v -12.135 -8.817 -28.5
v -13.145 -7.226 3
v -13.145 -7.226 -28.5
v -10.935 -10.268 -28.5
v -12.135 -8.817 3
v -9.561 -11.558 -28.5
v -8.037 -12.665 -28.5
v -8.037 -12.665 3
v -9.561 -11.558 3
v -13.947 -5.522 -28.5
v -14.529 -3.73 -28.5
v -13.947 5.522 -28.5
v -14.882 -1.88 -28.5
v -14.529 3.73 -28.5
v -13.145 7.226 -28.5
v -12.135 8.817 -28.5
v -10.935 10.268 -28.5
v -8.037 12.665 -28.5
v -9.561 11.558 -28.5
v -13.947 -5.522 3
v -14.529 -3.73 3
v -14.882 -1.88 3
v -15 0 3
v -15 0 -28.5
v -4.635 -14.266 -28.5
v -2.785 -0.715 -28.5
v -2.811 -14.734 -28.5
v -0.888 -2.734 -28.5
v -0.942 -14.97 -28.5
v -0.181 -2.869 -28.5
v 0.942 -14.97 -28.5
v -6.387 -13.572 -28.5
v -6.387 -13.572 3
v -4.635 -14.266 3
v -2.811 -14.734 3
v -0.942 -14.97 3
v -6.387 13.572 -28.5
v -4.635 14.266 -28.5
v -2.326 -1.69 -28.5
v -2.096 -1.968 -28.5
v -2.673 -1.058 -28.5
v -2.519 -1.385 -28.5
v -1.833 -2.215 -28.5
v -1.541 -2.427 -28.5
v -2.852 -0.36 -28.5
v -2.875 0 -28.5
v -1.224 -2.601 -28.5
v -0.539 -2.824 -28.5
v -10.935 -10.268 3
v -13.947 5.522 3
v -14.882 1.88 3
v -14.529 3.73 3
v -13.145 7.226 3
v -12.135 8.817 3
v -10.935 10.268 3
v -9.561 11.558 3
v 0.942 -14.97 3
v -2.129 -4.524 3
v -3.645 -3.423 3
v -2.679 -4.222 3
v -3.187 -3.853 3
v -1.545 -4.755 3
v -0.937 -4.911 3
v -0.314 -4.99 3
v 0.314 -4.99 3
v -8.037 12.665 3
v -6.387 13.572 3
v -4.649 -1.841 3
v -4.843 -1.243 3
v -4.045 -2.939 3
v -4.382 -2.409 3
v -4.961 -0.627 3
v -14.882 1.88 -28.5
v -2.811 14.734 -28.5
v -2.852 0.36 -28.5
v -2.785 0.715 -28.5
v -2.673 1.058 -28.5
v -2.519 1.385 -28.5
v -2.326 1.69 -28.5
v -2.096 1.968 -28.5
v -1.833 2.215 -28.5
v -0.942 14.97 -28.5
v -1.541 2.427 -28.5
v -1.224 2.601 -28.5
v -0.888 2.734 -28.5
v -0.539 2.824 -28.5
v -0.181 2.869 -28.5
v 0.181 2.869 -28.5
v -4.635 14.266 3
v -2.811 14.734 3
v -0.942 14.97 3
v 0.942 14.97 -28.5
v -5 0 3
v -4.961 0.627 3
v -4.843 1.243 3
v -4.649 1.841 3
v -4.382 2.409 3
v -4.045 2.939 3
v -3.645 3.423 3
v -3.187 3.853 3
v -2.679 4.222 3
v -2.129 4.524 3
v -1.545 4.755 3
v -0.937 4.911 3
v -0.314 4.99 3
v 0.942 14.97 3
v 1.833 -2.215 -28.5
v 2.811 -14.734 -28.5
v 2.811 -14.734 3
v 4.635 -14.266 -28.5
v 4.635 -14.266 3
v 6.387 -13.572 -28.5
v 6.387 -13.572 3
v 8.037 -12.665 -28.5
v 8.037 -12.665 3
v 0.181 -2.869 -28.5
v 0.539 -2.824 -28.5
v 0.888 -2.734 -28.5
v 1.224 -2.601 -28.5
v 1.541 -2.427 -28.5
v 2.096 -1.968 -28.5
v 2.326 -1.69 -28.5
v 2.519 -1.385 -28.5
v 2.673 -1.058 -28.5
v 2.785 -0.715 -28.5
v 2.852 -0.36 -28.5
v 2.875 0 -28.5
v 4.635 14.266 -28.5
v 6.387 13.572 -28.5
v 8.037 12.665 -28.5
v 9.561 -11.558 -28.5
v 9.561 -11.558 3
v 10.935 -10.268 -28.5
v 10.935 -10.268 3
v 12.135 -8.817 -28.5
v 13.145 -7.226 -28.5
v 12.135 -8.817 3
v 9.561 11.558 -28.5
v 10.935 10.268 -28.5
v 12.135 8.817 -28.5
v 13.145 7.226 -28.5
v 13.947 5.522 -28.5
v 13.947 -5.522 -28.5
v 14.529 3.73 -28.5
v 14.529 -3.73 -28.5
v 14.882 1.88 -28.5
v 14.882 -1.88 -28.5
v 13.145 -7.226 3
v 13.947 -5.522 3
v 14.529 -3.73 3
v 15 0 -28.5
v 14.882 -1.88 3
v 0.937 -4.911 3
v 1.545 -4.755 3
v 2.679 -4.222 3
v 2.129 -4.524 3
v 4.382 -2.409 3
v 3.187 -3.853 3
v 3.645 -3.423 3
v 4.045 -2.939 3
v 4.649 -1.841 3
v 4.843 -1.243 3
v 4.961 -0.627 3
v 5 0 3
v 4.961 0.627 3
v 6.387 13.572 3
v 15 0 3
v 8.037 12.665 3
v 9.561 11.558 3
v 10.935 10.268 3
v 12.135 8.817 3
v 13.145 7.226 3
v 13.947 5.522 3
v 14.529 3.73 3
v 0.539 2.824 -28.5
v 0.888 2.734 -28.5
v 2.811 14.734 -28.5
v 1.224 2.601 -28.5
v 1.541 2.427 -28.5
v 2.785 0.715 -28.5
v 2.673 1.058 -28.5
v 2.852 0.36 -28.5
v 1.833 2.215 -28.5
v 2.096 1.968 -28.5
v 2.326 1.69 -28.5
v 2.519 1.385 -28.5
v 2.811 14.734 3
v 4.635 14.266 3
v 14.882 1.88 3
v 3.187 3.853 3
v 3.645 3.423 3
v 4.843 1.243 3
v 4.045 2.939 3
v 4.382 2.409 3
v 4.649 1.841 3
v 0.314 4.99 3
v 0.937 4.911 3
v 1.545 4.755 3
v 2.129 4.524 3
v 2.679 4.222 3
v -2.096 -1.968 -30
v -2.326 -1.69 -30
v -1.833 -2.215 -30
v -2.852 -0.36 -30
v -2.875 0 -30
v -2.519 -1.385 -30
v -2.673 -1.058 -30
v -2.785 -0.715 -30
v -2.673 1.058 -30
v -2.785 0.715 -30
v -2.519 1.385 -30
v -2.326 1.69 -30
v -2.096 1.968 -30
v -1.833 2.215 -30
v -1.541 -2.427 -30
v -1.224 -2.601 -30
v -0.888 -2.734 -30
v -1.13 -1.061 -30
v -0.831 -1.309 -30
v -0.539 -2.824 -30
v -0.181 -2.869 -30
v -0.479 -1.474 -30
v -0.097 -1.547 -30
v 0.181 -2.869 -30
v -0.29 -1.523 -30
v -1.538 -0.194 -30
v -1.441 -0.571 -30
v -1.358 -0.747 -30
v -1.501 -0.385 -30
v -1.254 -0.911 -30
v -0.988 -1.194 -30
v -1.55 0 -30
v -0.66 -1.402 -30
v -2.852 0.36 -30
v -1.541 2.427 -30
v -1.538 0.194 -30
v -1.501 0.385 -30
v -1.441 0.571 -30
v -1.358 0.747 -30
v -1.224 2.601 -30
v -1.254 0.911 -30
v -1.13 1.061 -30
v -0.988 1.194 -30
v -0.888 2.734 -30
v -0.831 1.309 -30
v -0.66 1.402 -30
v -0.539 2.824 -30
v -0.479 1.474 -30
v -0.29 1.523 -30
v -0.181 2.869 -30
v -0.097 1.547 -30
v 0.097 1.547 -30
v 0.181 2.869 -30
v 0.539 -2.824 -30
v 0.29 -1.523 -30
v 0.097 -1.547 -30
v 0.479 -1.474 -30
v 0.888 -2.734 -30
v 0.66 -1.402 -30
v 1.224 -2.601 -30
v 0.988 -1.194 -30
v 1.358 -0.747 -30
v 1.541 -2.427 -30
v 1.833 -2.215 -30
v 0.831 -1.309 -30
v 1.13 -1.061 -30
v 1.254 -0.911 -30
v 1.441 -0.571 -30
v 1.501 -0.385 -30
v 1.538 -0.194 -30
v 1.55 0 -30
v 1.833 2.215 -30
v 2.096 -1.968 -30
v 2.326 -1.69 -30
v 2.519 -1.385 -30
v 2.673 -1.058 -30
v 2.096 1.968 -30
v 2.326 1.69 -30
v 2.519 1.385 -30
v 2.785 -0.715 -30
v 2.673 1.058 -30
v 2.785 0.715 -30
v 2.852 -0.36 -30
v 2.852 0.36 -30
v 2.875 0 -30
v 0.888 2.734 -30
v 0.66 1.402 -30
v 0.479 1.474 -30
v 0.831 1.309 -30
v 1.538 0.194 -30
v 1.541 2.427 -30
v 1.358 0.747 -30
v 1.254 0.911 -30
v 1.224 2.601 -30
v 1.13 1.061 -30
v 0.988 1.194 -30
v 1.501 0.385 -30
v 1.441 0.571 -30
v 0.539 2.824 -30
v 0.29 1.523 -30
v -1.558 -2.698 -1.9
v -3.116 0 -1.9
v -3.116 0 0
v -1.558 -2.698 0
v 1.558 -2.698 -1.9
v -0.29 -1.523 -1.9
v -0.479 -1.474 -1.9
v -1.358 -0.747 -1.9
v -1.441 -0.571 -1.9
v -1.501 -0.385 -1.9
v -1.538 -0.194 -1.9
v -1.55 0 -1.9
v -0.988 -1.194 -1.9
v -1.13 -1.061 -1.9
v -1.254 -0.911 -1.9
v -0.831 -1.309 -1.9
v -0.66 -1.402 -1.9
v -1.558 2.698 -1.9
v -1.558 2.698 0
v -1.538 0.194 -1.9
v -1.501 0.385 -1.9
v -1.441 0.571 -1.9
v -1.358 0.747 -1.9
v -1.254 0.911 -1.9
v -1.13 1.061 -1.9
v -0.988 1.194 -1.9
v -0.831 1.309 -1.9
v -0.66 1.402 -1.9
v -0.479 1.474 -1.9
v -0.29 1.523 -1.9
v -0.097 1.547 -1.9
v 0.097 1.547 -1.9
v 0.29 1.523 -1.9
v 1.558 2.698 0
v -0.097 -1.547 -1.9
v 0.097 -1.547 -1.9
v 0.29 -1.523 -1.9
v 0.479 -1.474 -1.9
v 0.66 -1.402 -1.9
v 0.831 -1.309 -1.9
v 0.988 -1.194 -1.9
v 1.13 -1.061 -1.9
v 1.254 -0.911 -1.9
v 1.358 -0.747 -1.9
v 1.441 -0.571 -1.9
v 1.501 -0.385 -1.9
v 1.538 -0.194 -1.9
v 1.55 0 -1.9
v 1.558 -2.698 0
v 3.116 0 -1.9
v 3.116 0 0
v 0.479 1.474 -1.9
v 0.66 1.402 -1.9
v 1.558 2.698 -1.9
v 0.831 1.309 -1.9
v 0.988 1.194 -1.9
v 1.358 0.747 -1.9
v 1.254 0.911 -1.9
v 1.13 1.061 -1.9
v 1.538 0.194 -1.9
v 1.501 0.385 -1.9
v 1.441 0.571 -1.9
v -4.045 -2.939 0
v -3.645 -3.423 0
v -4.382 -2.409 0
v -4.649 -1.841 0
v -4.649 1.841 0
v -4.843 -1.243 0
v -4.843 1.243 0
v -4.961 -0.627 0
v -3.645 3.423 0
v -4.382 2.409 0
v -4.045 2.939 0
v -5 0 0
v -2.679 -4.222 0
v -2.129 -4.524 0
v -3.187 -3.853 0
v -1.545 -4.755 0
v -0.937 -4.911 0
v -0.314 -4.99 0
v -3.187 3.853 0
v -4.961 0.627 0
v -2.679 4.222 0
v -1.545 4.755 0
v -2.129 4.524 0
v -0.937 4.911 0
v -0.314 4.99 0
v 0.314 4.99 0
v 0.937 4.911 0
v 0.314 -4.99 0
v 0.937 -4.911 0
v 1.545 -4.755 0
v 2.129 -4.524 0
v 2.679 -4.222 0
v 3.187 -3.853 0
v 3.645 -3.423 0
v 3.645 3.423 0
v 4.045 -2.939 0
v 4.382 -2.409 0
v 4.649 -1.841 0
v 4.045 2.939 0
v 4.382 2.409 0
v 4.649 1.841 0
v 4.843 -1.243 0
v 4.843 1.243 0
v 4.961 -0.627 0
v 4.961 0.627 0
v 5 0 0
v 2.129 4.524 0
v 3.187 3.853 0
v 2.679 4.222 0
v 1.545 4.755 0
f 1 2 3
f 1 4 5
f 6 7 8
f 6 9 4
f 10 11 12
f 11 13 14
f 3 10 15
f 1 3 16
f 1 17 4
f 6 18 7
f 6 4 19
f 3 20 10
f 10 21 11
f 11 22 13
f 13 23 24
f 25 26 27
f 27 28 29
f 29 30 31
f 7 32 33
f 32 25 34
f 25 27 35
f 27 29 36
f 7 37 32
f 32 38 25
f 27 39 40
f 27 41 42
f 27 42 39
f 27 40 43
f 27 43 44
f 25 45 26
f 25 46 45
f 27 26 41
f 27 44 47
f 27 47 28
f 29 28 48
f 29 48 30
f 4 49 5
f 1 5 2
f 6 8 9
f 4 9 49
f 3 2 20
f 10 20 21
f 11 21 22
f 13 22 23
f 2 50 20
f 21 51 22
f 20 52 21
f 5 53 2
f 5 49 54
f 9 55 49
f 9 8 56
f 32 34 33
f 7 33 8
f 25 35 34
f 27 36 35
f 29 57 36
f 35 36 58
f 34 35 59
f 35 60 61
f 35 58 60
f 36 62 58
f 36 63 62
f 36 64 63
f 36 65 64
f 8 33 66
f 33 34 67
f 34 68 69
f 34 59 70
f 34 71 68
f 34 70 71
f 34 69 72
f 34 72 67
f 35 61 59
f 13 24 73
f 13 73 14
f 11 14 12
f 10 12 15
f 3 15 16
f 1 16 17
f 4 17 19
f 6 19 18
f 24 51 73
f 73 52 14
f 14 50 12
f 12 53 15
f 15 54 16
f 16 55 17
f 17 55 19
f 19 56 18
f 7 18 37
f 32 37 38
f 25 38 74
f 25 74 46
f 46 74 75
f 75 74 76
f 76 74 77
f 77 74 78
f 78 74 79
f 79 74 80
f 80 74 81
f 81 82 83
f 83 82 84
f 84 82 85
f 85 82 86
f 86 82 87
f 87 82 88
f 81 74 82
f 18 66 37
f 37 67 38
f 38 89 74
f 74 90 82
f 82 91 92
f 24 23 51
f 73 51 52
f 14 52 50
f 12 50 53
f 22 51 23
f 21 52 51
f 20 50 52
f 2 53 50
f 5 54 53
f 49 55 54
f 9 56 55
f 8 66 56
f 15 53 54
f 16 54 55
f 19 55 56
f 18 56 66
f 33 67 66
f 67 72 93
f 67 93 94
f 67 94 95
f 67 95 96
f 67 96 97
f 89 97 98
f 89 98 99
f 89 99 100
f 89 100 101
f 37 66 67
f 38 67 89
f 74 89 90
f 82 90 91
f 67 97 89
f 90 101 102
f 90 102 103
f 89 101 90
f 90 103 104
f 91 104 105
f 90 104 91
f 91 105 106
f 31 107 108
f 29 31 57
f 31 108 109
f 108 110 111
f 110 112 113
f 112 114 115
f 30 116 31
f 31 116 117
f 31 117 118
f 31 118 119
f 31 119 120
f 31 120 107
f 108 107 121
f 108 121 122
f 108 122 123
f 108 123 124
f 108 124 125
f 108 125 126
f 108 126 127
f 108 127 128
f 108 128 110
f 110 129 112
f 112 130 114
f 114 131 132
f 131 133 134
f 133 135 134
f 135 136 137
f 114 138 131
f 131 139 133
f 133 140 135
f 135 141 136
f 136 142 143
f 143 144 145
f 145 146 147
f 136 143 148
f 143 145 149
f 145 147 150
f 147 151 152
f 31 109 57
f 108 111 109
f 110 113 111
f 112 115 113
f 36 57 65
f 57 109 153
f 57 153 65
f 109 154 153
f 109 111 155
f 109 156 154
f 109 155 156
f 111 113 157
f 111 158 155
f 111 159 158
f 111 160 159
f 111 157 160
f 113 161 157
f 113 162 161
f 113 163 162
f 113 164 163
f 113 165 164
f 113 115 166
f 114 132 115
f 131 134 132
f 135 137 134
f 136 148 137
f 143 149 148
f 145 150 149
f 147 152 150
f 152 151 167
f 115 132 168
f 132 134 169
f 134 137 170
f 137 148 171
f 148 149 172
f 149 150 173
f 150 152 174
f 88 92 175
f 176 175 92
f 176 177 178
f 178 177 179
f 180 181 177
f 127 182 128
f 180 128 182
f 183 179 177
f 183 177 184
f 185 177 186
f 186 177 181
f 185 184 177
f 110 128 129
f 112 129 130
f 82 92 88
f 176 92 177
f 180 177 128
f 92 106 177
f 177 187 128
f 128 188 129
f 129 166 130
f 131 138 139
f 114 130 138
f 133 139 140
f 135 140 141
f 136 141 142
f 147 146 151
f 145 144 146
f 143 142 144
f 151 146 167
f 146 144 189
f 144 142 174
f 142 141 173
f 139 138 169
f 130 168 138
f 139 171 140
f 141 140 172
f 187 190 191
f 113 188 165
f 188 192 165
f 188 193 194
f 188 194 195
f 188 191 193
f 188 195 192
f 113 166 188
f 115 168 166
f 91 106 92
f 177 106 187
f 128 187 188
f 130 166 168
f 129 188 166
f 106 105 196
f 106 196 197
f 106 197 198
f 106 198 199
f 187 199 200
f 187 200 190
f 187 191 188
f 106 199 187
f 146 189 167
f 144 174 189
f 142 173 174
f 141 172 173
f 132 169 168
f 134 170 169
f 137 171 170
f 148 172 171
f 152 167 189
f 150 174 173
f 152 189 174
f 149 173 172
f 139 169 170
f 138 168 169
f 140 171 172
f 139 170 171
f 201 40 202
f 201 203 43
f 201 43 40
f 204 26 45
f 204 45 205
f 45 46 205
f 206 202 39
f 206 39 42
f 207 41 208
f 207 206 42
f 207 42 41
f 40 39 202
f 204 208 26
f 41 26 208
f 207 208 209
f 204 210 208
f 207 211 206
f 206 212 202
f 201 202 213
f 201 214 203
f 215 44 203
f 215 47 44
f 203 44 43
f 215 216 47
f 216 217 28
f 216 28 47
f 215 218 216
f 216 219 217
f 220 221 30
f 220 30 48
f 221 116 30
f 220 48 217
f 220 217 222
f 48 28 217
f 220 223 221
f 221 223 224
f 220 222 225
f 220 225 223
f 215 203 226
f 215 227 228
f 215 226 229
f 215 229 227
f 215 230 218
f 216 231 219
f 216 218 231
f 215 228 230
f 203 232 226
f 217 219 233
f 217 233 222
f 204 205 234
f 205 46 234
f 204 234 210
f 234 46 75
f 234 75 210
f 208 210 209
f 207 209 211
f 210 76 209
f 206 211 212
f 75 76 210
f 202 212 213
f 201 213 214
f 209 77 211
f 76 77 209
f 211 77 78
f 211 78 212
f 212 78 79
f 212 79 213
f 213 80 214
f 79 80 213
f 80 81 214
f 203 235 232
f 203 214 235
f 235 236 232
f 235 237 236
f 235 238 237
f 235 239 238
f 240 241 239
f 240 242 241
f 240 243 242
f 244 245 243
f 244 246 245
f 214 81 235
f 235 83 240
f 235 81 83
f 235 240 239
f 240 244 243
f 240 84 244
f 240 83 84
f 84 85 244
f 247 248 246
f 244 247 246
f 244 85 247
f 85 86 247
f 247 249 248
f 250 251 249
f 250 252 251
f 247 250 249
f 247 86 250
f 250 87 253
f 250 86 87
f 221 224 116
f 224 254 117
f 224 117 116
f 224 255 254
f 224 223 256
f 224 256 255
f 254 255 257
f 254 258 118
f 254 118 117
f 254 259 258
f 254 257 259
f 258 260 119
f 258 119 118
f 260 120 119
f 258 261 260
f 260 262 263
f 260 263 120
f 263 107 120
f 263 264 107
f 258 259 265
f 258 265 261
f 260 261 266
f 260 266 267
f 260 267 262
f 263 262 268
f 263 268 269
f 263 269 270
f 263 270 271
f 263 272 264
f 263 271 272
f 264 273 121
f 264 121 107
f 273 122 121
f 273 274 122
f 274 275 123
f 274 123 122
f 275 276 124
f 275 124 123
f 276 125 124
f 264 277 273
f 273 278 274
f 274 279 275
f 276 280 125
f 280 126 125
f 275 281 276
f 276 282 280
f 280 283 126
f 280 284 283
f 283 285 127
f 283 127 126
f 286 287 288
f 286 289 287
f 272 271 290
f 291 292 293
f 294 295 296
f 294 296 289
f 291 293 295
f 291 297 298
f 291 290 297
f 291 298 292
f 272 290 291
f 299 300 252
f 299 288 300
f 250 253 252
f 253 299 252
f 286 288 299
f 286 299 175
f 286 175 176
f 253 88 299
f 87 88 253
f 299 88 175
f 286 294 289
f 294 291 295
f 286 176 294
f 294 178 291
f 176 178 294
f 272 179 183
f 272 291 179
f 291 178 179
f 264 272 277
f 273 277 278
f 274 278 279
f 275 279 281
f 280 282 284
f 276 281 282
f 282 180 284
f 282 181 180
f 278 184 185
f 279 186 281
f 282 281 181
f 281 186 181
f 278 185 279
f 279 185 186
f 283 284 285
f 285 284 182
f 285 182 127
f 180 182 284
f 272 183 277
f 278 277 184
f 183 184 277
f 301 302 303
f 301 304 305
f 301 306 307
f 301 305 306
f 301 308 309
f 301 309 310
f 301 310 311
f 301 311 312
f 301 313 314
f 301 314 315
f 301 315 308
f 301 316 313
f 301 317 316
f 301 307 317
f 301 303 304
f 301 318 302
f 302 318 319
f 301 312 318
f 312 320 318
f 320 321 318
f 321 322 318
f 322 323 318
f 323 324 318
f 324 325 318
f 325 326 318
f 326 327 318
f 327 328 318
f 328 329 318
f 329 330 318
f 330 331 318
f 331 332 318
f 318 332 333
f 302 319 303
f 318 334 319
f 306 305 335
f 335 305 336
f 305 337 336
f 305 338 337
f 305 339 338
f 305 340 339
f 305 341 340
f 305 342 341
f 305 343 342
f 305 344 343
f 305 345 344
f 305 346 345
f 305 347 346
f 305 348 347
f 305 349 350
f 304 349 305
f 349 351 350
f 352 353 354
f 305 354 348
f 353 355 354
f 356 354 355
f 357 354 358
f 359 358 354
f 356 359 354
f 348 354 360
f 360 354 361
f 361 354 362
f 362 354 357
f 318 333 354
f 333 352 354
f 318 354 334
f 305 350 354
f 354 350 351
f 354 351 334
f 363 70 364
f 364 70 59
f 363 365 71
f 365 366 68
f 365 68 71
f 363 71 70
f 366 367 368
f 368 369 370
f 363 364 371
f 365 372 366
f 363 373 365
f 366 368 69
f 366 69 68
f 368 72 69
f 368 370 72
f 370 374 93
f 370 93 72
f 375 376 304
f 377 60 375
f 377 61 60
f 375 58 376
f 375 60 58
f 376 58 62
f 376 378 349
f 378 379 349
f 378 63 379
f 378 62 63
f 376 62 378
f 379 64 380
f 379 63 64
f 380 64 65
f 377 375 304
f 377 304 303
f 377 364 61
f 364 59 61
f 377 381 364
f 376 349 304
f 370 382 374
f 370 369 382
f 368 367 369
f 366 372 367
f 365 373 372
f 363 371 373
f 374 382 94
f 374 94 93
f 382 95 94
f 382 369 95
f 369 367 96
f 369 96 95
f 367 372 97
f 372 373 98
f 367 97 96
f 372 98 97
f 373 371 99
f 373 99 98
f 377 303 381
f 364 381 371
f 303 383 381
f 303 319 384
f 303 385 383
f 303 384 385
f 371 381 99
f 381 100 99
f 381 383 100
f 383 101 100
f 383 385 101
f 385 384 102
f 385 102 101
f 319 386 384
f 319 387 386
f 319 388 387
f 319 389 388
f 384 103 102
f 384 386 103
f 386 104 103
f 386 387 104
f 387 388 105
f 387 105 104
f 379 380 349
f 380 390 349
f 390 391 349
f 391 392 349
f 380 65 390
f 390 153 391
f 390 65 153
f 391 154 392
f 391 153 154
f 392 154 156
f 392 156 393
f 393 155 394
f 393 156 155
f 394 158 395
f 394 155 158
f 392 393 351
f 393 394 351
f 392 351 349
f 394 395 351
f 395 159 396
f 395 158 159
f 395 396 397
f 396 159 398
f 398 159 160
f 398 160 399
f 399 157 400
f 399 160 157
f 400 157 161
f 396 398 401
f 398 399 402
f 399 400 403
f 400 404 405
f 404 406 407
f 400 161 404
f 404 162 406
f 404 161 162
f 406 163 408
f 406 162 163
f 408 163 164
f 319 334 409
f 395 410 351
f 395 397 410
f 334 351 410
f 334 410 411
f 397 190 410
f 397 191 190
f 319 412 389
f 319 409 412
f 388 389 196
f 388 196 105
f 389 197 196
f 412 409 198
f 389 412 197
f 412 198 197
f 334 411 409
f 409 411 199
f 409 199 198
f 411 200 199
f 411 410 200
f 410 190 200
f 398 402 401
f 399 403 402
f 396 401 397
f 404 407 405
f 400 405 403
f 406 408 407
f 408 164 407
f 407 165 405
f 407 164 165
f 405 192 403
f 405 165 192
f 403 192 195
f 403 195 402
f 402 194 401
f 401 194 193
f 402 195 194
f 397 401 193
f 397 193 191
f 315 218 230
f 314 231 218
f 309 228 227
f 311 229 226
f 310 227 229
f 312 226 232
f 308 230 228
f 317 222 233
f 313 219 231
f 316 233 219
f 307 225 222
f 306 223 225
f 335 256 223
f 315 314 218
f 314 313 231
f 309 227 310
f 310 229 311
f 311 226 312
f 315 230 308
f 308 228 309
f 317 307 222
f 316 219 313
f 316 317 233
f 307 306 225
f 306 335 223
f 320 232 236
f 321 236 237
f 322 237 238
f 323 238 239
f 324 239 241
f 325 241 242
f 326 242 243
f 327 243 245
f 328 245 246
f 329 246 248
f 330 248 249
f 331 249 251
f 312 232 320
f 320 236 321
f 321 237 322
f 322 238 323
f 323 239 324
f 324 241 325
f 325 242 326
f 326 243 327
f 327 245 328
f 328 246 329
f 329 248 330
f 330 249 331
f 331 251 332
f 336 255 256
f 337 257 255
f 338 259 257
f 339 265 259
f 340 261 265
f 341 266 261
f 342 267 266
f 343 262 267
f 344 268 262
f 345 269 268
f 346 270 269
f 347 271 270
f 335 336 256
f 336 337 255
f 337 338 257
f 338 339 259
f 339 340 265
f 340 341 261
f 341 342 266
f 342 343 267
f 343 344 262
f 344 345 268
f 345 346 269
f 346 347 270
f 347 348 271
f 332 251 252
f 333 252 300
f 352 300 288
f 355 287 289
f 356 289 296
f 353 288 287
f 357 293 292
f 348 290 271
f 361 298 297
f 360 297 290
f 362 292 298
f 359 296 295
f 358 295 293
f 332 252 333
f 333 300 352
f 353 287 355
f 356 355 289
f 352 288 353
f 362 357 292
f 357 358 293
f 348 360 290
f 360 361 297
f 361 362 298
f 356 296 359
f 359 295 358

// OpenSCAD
$fn = 50;

difference() {
	union() {
		translate(v = [0, 0, -28.5]) {
			cylinder(h = 31.5, r = 15.0);
		}
		#translate(v = [0, 0, -30.0]) {
			cylinder(h = 30, r = 2.875);
		}
	}
	union() {
		translate(v = [0, 0, 0]) {
			rotate(a = [0, 0, 0]) {
				difference() {
					union() {
						translate(v = [0, 0, -1.9]) {
							linear_extrude(height = 1.9) {
								polygon(points = [[3.1158, 0.0], [1.5579000000000005, 2.698361953111554], [-1.5578999999999994, 2.6983619531115544], [-3.1158, 3.815754496783323e-16], [-1.5579000000000014, -2.6983619531115535], [1.557899999999998, -2.6983619531115552]]);
							}
						}
					}
					union();
				}
			}
		}
		#cylinder(h = 3, r = 5.0);
		#translate(v = [0, 0, -100.0]) {
			cylinder(h = 200, r = 1.55);
		}
	}
}
